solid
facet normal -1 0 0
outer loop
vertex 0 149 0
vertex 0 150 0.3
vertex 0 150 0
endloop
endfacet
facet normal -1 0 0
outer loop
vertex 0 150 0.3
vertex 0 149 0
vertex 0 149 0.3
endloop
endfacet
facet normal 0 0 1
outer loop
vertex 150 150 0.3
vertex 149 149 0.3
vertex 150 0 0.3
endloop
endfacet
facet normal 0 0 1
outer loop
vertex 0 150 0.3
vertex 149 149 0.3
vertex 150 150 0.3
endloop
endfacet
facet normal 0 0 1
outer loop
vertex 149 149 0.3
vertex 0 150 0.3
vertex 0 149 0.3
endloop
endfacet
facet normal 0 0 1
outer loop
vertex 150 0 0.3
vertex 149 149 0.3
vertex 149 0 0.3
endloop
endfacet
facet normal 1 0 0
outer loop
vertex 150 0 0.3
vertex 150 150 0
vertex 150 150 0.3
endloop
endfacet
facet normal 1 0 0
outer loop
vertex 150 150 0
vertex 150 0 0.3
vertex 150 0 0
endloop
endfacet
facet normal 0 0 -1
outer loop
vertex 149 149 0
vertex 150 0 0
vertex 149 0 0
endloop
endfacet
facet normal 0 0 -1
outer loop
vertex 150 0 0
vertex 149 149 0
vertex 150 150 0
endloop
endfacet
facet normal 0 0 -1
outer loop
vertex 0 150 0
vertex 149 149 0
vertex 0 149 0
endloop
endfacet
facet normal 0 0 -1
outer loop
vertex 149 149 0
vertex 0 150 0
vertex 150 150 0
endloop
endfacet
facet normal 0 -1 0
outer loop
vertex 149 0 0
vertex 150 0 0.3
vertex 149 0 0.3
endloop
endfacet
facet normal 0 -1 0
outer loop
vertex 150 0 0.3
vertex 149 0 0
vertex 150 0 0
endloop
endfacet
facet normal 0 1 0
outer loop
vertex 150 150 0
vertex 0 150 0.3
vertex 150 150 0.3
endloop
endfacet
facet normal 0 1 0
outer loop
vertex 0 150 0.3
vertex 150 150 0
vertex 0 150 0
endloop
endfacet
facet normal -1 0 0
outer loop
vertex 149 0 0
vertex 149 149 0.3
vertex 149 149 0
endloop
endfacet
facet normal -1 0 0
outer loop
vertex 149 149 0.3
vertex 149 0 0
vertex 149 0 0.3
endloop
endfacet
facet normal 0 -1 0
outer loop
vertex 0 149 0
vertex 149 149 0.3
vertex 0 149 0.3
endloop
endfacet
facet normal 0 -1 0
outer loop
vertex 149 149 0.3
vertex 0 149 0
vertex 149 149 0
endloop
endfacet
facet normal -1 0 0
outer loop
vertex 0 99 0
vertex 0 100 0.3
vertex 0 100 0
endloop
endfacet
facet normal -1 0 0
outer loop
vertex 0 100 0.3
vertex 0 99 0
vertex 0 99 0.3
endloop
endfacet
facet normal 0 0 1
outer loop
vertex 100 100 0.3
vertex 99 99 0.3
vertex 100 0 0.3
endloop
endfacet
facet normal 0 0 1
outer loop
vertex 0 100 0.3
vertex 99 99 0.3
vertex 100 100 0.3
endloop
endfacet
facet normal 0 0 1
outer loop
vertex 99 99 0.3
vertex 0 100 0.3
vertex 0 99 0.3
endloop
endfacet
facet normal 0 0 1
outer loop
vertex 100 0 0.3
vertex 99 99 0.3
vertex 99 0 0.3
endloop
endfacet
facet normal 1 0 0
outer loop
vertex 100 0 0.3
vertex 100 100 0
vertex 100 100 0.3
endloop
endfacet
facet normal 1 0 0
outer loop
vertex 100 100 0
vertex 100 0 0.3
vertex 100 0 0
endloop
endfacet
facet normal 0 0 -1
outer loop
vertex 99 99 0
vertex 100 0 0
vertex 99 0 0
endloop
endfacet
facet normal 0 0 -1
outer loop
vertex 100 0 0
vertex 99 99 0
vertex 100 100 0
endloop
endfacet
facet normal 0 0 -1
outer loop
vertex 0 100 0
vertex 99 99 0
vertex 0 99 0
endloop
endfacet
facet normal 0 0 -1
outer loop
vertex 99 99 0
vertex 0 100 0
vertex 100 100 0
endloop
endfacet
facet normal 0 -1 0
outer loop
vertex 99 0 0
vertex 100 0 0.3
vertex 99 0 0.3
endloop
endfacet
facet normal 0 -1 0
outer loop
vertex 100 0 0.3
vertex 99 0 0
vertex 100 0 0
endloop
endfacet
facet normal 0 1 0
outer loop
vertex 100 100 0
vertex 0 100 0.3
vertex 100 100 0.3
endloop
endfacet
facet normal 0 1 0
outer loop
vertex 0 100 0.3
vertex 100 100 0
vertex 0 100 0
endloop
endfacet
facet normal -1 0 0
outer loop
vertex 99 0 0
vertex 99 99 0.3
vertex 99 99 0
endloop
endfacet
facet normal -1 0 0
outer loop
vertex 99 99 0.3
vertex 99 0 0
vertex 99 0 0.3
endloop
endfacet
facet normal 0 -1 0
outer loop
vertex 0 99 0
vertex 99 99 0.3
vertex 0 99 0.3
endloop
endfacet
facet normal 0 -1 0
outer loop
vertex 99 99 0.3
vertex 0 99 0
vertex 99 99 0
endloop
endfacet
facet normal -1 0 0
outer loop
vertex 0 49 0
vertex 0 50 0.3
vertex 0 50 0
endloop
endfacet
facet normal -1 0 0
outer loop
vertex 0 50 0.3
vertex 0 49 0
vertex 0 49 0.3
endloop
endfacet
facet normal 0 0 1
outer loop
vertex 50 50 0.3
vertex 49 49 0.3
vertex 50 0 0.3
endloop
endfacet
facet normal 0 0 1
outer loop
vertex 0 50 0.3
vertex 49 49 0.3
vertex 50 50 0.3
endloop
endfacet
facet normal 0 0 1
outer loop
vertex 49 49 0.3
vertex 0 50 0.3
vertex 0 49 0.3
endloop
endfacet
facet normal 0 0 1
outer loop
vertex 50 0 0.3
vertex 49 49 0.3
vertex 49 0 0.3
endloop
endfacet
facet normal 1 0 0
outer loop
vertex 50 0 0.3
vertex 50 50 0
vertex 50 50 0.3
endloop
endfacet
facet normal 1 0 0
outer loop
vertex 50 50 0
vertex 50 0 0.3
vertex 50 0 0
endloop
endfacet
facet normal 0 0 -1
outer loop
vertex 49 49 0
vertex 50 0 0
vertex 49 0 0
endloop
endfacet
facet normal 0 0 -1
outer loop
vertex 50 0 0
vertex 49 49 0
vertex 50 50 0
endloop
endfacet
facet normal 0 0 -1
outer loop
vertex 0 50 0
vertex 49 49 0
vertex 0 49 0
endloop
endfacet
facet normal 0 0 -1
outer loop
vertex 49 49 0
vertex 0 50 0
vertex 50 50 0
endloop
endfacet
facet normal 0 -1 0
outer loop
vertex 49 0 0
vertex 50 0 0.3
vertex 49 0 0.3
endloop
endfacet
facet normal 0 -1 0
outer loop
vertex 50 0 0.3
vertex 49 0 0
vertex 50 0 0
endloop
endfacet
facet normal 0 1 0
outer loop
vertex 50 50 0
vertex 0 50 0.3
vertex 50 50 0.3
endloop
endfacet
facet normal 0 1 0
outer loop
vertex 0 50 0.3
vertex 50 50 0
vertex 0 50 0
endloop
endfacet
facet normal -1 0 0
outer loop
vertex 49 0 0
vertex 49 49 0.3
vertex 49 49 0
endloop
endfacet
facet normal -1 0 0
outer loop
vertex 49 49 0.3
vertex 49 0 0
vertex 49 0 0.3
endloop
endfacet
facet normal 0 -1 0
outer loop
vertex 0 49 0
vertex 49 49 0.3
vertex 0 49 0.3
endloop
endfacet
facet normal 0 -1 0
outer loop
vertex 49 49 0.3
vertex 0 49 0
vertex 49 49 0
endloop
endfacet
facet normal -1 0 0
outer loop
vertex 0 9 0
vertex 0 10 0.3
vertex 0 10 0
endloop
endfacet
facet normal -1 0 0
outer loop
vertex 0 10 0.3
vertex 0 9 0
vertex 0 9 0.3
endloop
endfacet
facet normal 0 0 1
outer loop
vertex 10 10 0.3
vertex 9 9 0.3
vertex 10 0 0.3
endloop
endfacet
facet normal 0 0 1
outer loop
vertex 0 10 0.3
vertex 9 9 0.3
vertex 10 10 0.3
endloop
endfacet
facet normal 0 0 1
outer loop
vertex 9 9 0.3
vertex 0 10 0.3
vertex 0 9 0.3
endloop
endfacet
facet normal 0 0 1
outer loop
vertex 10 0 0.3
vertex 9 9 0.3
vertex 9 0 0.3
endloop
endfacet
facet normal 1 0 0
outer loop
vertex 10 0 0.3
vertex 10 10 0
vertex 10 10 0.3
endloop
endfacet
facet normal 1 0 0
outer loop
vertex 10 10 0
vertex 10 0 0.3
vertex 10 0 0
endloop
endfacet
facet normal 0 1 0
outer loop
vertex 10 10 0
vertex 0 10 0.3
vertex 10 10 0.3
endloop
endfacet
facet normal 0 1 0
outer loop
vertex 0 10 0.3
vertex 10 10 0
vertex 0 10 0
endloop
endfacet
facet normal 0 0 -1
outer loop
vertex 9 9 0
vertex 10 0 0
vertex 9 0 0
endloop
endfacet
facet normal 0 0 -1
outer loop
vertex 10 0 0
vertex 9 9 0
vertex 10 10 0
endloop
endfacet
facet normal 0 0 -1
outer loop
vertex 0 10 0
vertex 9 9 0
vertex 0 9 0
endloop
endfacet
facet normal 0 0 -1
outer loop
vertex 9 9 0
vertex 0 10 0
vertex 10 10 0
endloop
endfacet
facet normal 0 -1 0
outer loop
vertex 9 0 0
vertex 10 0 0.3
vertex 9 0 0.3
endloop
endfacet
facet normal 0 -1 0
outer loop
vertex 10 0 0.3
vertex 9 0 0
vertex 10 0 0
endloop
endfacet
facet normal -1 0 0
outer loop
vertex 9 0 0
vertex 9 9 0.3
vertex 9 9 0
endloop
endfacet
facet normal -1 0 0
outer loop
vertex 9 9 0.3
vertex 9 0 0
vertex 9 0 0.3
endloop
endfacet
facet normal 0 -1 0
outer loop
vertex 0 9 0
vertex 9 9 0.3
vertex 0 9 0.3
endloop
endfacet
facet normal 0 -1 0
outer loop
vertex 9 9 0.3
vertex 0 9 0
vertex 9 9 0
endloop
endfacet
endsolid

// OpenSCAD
high=0.3;

union() {
    difference() {
        cube([150,150,high]);
        cube([149,149,high+0.1]);
    }

    difference() {
        cube([100,100,high]);
        cube([99,99,high+0.1]);
    }
    
    difference() {
        cube([50,50,high]);
        cube([49,49,high+0.1]);
    }
    
    difference() {
        cube([10,10,high]);
        cube([9,9,high+0.1]);
    }
}
